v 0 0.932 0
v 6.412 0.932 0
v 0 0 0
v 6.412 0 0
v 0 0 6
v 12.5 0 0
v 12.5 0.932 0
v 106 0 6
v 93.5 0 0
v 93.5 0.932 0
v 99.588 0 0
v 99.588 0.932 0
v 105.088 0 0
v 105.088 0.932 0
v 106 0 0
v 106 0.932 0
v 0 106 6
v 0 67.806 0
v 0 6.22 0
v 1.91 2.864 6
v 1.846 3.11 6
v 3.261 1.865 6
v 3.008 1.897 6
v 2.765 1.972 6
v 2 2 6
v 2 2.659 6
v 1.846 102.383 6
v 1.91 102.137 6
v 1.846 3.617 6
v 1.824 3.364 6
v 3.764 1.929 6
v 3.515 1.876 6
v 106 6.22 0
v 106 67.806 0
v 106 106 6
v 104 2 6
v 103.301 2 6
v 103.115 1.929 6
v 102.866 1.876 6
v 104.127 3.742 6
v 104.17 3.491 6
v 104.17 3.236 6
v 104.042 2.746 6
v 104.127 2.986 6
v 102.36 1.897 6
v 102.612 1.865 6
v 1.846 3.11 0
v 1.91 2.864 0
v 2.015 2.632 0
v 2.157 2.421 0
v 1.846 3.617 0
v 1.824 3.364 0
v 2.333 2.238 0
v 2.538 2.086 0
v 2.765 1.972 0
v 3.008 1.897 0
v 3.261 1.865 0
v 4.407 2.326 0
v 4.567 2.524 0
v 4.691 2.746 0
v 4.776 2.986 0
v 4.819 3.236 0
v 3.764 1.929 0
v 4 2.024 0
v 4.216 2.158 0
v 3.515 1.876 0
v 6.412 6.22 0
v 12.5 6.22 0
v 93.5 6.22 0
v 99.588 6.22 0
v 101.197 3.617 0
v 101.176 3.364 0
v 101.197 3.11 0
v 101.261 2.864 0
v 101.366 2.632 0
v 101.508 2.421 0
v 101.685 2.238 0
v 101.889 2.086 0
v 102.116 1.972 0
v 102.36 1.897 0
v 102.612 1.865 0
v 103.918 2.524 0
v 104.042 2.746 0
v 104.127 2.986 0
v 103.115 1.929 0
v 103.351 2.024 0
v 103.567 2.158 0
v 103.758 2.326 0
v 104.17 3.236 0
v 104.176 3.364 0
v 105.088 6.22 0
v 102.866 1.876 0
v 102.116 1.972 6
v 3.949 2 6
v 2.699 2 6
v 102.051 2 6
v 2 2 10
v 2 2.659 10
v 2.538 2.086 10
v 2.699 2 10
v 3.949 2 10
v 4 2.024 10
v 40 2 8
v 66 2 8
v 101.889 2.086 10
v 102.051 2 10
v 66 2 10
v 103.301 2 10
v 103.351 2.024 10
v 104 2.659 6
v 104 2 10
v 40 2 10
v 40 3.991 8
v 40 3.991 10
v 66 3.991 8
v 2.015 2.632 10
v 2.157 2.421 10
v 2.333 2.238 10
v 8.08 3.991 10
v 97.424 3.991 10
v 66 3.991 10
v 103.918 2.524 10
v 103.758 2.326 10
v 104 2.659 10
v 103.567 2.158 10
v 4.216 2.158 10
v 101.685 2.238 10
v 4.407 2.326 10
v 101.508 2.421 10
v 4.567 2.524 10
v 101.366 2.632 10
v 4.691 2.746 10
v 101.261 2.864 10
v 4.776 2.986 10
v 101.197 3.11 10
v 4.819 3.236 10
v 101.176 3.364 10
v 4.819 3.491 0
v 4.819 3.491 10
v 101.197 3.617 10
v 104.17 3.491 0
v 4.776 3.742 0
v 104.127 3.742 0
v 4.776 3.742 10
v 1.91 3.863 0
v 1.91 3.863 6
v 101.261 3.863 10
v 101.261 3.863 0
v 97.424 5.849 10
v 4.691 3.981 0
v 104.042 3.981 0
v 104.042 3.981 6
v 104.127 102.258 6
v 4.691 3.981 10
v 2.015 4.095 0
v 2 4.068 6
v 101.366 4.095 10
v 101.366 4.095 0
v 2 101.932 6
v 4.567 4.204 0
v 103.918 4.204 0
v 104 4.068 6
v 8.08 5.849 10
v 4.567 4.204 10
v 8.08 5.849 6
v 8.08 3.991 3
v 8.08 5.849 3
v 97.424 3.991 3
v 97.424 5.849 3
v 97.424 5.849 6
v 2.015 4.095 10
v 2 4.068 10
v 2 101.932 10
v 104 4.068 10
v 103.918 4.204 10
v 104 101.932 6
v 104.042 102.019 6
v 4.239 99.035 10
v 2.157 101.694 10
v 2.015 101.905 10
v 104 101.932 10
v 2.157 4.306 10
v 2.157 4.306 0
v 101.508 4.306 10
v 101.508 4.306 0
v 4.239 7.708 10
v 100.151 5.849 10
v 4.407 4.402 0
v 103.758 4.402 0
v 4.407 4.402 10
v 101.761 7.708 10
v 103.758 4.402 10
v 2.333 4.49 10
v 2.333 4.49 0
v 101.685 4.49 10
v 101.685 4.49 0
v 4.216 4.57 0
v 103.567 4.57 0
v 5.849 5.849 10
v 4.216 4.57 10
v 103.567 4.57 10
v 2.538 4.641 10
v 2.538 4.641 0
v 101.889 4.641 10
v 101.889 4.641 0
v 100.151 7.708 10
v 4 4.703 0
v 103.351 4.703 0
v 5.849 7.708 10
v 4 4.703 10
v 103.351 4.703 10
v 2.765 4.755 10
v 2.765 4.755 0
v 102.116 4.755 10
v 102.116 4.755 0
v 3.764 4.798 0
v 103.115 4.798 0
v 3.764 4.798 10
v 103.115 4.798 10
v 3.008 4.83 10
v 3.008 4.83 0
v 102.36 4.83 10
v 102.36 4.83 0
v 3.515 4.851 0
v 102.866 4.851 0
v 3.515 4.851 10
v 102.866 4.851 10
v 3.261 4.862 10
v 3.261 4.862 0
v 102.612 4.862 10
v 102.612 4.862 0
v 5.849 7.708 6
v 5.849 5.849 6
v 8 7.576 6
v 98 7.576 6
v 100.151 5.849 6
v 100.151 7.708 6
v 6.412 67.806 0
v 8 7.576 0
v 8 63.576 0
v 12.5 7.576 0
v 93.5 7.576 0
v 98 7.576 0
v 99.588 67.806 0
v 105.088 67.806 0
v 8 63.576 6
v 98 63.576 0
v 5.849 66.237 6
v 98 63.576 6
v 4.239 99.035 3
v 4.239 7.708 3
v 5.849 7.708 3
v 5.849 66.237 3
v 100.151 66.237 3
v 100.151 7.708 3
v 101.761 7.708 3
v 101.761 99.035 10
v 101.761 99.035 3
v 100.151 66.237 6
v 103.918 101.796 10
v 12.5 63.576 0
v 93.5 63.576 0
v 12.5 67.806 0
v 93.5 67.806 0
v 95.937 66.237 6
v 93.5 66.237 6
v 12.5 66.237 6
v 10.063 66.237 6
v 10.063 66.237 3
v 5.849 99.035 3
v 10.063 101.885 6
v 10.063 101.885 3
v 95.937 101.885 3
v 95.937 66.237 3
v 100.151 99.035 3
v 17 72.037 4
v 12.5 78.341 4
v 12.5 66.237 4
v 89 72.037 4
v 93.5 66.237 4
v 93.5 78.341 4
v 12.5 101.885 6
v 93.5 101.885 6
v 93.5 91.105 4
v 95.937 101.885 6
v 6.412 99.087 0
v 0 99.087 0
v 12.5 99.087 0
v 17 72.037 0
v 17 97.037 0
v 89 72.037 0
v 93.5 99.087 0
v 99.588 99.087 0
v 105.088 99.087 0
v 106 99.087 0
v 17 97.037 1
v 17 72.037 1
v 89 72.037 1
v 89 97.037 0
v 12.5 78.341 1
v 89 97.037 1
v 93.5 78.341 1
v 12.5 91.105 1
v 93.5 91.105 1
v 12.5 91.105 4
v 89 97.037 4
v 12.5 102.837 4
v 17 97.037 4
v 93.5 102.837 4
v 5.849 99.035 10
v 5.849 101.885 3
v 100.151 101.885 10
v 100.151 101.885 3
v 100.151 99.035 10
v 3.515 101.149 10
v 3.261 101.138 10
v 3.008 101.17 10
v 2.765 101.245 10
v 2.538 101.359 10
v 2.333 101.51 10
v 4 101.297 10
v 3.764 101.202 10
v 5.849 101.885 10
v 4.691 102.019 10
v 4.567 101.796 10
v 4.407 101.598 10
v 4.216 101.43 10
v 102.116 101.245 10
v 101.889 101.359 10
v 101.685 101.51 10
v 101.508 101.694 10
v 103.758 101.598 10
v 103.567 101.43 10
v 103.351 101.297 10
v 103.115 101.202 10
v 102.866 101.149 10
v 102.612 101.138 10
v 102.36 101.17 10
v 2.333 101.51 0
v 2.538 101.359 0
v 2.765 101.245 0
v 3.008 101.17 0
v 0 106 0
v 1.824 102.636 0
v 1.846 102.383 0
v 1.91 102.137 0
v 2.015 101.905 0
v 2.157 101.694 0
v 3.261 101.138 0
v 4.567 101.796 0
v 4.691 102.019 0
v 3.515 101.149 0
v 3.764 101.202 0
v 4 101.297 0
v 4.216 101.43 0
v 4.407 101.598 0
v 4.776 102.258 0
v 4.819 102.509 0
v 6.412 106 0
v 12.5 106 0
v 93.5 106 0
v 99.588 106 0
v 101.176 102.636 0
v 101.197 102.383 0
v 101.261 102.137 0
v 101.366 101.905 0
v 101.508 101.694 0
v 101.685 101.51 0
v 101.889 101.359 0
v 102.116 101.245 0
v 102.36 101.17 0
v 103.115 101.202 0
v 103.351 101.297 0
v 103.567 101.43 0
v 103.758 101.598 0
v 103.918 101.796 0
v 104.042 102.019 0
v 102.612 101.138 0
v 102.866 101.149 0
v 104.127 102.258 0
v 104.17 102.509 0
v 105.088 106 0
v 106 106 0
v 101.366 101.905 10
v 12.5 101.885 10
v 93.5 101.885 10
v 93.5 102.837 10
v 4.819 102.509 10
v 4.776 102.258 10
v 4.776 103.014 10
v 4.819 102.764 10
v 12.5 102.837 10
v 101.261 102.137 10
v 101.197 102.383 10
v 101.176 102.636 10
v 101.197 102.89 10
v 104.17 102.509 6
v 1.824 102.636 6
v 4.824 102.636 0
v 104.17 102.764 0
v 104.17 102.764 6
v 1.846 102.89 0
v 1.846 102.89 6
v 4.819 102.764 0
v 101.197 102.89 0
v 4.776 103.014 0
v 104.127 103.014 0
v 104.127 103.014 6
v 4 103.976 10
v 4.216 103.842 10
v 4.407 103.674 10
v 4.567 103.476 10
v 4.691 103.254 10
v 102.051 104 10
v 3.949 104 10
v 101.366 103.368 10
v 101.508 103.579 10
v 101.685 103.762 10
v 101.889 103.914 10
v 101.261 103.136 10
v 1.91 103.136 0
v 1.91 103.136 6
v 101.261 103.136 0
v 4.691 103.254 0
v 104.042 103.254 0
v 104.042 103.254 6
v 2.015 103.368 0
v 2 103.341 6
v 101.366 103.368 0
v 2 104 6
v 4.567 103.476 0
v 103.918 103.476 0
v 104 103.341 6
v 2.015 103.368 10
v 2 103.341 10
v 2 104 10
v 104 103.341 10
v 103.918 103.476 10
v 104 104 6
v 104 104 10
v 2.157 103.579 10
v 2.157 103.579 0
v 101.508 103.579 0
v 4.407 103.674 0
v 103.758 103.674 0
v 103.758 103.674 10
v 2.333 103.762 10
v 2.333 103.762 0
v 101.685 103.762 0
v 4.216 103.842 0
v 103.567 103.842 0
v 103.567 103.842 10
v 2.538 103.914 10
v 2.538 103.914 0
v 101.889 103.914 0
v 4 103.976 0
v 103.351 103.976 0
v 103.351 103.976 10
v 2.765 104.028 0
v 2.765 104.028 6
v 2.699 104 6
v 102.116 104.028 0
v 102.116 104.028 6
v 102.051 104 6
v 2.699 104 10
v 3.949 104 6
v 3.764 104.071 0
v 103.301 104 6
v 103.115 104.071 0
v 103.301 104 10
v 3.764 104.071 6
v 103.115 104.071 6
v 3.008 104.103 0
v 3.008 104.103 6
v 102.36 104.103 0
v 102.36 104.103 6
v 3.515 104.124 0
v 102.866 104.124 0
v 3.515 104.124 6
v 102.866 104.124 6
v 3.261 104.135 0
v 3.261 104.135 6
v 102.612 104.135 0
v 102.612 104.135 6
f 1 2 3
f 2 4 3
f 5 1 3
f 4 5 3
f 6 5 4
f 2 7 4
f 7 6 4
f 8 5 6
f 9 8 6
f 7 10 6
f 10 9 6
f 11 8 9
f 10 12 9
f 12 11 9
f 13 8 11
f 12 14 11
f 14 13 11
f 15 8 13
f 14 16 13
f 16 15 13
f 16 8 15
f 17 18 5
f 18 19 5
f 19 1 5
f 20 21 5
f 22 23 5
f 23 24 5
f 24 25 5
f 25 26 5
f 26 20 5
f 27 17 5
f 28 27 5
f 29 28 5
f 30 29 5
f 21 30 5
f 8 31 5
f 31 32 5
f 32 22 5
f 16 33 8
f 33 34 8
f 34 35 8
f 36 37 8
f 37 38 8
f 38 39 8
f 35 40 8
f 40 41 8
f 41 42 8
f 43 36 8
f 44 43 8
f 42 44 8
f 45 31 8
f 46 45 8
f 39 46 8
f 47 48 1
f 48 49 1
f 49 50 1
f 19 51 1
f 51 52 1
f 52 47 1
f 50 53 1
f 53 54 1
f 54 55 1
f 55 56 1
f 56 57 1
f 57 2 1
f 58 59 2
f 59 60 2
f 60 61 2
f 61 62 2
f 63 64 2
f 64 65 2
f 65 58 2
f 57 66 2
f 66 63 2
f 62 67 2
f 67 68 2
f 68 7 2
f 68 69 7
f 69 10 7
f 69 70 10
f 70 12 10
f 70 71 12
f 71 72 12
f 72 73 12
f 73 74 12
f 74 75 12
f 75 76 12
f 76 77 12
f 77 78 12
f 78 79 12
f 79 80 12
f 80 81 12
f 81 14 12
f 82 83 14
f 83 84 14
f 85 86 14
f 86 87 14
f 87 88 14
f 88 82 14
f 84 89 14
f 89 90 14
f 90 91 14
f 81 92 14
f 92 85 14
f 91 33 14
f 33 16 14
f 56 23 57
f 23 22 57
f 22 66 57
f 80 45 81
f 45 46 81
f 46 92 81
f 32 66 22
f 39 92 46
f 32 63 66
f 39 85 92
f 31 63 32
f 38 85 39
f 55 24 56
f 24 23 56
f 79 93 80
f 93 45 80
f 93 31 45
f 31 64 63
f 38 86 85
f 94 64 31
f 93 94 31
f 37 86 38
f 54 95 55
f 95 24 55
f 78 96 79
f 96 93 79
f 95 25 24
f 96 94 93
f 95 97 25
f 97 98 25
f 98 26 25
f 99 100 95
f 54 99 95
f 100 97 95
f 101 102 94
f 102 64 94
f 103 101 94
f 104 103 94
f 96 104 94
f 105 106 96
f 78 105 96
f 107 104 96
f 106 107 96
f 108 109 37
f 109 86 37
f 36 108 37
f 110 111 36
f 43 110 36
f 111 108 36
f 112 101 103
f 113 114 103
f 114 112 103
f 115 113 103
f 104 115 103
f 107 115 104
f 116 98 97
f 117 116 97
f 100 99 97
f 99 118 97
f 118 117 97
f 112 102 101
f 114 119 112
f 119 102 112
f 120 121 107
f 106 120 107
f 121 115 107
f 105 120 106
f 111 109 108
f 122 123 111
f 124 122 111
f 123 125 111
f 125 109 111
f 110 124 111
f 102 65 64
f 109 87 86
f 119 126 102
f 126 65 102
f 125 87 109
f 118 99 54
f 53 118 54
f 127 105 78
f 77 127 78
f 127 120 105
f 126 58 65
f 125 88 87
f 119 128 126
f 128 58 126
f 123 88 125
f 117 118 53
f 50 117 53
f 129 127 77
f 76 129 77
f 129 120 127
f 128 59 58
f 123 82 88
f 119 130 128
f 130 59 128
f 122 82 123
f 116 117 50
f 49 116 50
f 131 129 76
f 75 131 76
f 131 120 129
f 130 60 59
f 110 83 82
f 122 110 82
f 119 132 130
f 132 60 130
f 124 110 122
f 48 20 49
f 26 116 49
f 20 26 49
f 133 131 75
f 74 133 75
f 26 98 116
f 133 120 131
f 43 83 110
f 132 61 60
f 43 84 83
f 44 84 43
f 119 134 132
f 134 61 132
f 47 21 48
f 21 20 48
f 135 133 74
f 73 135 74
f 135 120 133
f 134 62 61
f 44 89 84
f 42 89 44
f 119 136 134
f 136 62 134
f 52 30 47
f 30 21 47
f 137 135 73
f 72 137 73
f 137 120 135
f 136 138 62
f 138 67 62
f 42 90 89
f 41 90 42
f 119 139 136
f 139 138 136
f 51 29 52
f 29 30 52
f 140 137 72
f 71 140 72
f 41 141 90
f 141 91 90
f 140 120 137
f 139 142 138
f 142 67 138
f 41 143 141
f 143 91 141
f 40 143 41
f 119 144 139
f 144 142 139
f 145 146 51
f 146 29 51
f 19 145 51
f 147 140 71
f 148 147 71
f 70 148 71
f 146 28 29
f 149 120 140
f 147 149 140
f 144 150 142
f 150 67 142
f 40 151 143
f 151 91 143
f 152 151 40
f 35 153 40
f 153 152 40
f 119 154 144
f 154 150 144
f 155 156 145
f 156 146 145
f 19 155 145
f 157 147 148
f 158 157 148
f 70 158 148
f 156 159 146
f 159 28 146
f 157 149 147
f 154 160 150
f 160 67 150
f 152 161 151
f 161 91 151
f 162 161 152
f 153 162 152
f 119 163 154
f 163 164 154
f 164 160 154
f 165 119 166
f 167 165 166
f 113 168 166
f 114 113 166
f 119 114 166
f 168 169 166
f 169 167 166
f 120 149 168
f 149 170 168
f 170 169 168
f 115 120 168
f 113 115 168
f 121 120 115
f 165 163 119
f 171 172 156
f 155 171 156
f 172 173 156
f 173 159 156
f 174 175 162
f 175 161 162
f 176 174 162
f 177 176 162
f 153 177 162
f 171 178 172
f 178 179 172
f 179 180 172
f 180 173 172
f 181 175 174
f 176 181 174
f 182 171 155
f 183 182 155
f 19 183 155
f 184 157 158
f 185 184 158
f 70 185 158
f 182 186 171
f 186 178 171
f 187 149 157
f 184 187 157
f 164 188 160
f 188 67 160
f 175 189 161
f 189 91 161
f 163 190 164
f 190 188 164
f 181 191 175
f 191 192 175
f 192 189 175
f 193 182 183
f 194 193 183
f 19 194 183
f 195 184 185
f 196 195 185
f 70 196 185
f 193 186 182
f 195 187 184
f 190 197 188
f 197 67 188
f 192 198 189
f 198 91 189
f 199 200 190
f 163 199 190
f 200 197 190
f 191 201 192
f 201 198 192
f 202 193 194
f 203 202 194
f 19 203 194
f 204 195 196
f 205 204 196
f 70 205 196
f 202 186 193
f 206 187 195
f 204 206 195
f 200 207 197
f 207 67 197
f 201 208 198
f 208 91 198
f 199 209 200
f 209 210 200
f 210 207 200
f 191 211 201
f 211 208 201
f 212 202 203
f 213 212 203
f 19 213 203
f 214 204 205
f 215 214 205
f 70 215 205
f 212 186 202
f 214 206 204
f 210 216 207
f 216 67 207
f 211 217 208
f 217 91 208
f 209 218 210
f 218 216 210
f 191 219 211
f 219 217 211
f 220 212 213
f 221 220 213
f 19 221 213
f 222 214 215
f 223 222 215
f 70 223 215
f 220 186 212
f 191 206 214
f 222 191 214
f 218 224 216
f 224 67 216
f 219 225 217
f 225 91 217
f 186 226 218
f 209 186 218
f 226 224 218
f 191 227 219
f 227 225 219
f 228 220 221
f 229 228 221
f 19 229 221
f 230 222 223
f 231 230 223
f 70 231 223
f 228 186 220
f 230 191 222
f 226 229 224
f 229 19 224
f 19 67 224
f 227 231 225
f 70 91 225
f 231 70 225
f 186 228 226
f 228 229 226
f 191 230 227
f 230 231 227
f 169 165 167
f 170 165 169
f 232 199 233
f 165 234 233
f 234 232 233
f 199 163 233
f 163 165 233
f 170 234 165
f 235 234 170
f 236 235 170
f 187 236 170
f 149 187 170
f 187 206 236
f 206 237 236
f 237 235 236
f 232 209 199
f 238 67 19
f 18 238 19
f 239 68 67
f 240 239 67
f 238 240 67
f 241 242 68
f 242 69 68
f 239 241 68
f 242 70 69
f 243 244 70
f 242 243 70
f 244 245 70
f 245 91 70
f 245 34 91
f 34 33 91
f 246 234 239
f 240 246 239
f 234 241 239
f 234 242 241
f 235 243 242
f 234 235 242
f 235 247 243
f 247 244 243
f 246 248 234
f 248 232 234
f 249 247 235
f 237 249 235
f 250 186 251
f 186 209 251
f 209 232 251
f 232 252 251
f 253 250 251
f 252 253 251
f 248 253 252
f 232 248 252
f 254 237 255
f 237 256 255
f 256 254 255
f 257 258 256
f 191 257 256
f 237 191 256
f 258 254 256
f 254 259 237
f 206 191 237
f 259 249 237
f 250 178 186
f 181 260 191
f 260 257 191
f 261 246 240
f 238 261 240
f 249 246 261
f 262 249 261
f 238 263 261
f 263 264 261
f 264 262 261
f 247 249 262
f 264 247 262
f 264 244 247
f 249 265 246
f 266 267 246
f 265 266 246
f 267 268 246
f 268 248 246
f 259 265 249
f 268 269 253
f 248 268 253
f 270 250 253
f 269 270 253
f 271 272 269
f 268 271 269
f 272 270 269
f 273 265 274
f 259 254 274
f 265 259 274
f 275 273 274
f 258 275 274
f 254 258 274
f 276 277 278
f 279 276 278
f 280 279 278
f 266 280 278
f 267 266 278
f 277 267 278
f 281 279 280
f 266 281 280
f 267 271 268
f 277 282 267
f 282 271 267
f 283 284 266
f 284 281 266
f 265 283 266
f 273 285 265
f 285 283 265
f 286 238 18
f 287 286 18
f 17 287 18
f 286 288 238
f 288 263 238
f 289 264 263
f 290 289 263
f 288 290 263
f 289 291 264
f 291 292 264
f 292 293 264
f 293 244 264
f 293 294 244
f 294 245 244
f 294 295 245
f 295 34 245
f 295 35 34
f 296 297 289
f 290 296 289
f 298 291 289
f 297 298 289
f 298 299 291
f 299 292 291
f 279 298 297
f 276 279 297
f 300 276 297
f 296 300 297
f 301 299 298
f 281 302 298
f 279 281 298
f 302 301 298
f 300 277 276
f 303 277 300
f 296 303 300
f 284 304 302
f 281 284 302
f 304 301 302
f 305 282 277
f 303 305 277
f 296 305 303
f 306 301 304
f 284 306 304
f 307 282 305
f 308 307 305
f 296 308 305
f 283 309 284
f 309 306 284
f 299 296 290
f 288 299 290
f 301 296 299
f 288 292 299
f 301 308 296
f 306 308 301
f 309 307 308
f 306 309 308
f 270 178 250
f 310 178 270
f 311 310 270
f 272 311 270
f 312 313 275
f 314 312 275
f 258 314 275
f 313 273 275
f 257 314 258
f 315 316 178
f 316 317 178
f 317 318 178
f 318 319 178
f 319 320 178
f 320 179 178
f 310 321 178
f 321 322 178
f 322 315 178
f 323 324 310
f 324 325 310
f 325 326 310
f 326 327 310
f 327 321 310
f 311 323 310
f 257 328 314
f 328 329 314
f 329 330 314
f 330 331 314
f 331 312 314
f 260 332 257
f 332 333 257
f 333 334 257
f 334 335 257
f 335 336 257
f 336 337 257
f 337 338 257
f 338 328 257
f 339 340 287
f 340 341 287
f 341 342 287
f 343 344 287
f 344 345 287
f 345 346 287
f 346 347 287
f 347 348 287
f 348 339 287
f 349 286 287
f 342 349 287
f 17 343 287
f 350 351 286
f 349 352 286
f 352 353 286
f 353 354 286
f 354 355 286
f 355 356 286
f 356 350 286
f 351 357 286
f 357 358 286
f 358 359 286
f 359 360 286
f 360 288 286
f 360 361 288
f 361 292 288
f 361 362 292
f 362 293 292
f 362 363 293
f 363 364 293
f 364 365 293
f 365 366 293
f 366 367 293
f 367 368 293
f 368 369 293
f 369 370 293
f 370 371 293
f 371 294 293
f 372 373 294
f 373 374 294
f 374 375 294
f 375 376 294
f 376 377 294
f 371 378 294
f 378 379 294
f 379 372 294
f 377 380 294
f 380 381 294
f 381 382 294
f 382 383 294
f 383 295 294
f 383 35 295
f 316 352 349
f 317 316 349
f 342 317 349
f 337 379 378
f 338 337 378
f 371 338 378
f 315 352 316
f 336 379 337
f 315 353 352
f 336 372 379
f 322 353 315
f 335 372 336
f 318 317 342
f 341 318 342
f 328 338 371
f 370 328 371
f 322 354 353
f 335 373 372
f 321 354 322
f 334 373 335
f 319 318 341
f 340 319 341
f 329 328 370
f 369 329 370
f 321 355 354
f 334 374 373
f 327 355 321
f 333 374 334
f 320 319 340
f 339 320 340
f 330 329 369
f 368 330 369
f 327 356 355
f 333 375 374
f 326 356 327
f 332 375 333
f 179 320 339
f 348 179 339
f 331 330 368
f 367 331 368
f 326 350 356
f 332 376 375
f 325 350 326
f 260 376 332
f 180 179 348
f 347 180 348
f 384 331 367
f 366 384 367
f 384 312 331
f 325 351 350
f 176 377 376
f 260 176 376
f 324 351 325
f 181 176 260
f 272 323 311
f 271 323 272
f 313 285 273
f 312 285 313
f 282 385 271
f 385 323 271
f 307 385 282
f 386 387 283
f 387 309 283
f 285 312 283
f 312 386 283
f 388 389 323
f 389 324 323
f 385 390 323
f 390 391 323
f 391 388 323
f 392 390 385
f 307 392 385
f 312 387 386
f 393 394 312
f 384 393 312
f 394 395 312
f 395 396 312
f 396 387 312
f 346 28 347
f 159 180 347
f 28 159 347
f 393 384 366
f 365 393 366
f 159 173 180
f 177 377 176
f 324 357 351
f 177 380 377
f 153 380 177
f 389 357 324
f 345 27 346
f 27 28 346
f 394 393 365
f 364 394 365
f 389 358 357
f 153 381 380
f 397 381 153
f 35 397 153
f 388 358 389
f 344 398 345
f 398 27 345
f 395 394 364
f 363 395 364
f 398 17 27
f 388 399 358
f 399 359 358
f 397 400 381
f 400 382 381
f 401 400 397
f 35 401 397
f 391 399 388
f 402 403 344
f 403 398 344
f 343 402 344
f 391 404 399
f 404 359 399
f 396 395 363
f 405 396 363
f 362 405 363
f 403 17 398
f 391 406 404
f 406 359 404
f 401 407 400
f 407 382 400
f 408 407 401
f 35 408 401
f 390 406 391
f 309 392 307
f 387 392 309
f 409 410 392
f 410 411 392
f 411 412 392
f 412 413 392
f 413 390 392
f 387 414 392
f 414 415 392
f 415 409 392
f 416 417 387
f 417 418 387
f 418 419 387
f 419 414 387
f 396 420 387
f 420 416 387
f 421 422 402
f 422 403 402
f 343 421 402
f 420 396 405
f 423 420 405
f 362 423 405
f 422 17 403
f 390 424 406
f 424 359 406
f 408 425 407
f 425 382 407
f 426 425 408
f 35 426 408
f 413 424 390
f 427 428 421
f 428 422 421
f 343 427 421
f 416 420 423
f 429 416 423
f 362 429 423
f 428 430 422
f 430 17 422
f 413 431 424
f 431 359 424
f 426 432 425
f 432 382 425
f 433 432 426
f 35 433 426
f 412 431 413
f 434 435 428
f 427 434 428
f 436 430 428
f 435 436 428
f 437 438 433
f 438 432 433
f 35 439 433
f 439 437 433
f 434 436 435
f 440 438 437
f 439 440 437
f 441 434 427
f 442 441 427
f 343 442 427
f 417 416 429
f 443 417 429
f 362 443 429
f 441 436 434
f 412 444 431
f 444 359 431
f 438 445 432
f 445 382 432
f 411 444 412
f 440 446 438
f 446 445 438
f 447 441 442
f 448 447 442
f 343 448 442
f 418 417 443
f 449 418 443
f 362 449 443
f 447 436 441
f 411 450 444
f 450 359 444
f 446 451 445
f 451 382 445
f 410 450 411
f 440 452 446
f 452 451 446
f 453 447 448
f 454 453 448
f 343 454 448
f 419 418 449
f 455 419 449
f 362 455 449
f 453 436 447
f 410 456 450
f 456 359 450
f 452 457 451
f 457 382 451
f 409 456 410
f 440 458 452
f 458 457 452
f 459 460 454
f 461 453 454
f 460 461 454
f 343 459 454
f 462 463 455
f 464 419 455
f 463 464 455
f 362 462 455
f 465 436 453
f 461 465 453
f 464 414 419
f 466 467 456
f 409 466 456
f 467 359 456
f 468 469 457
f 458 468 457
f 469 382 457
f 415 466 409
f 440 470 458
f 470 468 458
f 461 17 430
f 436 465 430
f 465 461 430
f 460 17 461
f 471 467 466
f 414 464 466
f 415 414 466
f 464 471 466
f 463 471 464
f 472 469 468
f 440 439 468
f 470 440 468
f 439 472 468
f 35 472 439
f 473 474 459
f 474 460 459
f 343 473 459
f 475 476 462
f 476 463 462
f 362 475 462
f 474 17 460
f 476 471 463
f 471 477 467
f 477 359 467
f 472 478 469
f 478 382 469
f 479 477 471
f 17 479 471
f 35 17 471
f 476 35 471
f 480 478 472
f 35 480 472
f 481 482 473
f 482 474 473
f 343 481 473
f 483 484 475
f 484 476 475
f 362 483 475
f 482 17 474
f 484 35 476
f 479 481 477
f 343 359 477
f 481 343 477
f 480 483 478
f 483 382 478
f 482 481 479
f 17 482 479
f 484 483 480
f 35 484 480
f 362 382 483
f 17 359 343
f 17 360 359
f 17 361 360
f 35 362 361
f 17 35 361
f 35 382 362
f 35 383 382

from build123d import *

# Parameters (mm, degrees)
SKETCH_1_W          = 106
SKETCH_1_H          = 106
SKETCH_1_R          = 1.5
SKETCH_1_W_2        = 72
SKETCH_1_H_2        = 25
SKETCH_1_W_3        = 90
SKETCH_1_H_3        = 56
EXTRUDE_1_DEPTH     = 10
SKETCH_2_W          = 106
SKETCH_2_H          = 106
SKETCH_2_W_2        = 102
SKETCH_2_H_2        = 102
CUT_EXTRUDE_1_DEPTH = 4
SKETCH_3_W          = 81
SKETCH_3_H          = 36.6
CUT_EXTRUDE_2_DEPTH = 6
SKETCH_4_W          = 89.344385993
SKETCH_4_H          = 1.858759764
CUT_EXTRUDE_3_DEPTH = 7
CUT_EXTRUDE_4_DEPTH = 4
CUT_EXTRUDE_5_DEPTH = 3
SKETCH_8_W          = 26
SKETCH_8_H          = 17.490205858
CUT_EXTRUDE_6_DEPTH = 2


with BuildPart() as part:
    # 草图1 → 凸台-拉伸1 (new body)
    with BuildSketch(Plane.XY):
        with Locations((53, 53)):
            Rectangle(SKETCH_1_W, SKETCH_1_H)
        with Locations((3.324461644, 102.636394846)):
            Circle(SKETCH_1_R, mode=Mode.SUBTRACT)
        with Locations(Location((102.675538356, 102.636394846, 0), (0, 0, 180))):
            Circle(SKETCH_1_R, mode=Mode.SUBTRACT)
        with Locations((102.675538356, 3.363605154)):
            Circle(SKETCH_1_R, mode=Mode.SUBTRACT)
        with Locations(Location((3.324461644, 3.363605154, 0), (0, 0, 180))):
            Circle(SKETCH_1_R, mode=Mode.SUBTRACT)
        with Locations((53, 84.537117037)):
            Rectangle(SKETCH_1_W_2, SKETCH_1_H_2, mode=Mode.SUBTRACT)
        with Locations((53, 35.575547917)):
            Rectangle(SKETCH_1_W_3, SKETCH_1_H_3, mode=Mode.SUBTRACT)
    extrude(amount=EXTRUDE_1_DEPTH)

    # 草图2 → 切除-拉伸1 (cut)
    with BuildSketch(Plane.XY.offset(10)):
        with Locations((53, 53)):
            Rectangle(SKETCH_2_W, SKETCH_2_H)
        with Locations((53, 53)):
            Rectangle(SKETCH_2_W_2, SKETCH_2_H_2, mode=Mode.SUBTRACT)
    extrude(amount=-CUT_EXTRUDE_1_DEPTH, mode=Mode.SUBTRACT)

    # 草图3 → 切除-拉伸2 (cut)
    with BuildSketch(Plane.XY.offset(10)):
        with Locations((53, 84.537117037)):
            Rectangle(SKETCH_3_W, SKETCH_3_H)
    extrude(amount=-CUT_EXTRUDE_2_DEPTH, mode=Mode.SUBTRACT)

    # 草图4 → 切除-拉伸3 (cut)
    with BuildSketch(Plane.XY.offset(10)):
        Polygon((4.238535523, 99.03528349), (5.849460651, 99.03528349), (5.849460651, 101.885381795), (10.06264945, 101.885381795), (10.06264945, 66.237117037), (5.849460651, 66.237117037), (5.849460651, 7.708220416), (4.238535523, 7.708220416), align=None)
        Polygon((95.93735055, 66.237117037), (100.150539349, 66.237117037), (100.150539349, 7.708220416), (101.761464477, 7.708220416), (101.761464477, 99.03528349), (100.150539349, 99.03528349), (100.150539349, 101.885381795), (95.93735055, 101.885381795), align=None)
        with Locations((52.752165365, 4.920080769)):
            Rectangle(SKETCH_4_W, SKETCH_4_H)
    extrude(amount=-CUT_EXTRUDE_3_DEPTH, mode=Mode.SUBTRACT)

    # 草图5 → 切除-拉伸4 (cut)
    with BuildSketch(Plane.XY.offset(10)):
        Polygon((7.956055051, 101.885381795), (98.043944949, 101.885381795), (98.043944949, 66.237117037), (100.150539349, 66.237117037), (100.150539349, 5.849460651), (5.849460651, 5.849460651), (5.849460651, 66.237117037), (7.956055051, 66.237117037), align=None)
    extrude(amount=-CUT_EXTRUDE_4_DEPTH, mode=Mode.SUBTRACT)

    # 草图6 → 切除-拉伸5 (cut)
    with BuildSketch(Plane.XY.offset(4)):
        Polygon((17, 97.037117037), (12.5, 91.104575163), (12.5, 78.34109145), (17, 72.037117037), align=None)
        Polygon((89, 72.037117037), (89, 97.037117037), (93.5, 91.104575163), (93.5, 78.34109145), align=None)
    extrude(amount=-CUT_EXTRUDE_5_DEPTH, mode=Mode.SUBTRACT)

    # 草图8 → 切除-拉伸6 (cut)
    with BuildSketch(Plane.XY.offset(10)):
        with Locations((53, 3.253738618)):
            Rectangle(SKETCH_8_W, SKETCH_8_H)
    extrude(amount=-CUT_EXTRUDE_6_DEPTH, mode=Mode.SUBTRACT)


solid = part.part
